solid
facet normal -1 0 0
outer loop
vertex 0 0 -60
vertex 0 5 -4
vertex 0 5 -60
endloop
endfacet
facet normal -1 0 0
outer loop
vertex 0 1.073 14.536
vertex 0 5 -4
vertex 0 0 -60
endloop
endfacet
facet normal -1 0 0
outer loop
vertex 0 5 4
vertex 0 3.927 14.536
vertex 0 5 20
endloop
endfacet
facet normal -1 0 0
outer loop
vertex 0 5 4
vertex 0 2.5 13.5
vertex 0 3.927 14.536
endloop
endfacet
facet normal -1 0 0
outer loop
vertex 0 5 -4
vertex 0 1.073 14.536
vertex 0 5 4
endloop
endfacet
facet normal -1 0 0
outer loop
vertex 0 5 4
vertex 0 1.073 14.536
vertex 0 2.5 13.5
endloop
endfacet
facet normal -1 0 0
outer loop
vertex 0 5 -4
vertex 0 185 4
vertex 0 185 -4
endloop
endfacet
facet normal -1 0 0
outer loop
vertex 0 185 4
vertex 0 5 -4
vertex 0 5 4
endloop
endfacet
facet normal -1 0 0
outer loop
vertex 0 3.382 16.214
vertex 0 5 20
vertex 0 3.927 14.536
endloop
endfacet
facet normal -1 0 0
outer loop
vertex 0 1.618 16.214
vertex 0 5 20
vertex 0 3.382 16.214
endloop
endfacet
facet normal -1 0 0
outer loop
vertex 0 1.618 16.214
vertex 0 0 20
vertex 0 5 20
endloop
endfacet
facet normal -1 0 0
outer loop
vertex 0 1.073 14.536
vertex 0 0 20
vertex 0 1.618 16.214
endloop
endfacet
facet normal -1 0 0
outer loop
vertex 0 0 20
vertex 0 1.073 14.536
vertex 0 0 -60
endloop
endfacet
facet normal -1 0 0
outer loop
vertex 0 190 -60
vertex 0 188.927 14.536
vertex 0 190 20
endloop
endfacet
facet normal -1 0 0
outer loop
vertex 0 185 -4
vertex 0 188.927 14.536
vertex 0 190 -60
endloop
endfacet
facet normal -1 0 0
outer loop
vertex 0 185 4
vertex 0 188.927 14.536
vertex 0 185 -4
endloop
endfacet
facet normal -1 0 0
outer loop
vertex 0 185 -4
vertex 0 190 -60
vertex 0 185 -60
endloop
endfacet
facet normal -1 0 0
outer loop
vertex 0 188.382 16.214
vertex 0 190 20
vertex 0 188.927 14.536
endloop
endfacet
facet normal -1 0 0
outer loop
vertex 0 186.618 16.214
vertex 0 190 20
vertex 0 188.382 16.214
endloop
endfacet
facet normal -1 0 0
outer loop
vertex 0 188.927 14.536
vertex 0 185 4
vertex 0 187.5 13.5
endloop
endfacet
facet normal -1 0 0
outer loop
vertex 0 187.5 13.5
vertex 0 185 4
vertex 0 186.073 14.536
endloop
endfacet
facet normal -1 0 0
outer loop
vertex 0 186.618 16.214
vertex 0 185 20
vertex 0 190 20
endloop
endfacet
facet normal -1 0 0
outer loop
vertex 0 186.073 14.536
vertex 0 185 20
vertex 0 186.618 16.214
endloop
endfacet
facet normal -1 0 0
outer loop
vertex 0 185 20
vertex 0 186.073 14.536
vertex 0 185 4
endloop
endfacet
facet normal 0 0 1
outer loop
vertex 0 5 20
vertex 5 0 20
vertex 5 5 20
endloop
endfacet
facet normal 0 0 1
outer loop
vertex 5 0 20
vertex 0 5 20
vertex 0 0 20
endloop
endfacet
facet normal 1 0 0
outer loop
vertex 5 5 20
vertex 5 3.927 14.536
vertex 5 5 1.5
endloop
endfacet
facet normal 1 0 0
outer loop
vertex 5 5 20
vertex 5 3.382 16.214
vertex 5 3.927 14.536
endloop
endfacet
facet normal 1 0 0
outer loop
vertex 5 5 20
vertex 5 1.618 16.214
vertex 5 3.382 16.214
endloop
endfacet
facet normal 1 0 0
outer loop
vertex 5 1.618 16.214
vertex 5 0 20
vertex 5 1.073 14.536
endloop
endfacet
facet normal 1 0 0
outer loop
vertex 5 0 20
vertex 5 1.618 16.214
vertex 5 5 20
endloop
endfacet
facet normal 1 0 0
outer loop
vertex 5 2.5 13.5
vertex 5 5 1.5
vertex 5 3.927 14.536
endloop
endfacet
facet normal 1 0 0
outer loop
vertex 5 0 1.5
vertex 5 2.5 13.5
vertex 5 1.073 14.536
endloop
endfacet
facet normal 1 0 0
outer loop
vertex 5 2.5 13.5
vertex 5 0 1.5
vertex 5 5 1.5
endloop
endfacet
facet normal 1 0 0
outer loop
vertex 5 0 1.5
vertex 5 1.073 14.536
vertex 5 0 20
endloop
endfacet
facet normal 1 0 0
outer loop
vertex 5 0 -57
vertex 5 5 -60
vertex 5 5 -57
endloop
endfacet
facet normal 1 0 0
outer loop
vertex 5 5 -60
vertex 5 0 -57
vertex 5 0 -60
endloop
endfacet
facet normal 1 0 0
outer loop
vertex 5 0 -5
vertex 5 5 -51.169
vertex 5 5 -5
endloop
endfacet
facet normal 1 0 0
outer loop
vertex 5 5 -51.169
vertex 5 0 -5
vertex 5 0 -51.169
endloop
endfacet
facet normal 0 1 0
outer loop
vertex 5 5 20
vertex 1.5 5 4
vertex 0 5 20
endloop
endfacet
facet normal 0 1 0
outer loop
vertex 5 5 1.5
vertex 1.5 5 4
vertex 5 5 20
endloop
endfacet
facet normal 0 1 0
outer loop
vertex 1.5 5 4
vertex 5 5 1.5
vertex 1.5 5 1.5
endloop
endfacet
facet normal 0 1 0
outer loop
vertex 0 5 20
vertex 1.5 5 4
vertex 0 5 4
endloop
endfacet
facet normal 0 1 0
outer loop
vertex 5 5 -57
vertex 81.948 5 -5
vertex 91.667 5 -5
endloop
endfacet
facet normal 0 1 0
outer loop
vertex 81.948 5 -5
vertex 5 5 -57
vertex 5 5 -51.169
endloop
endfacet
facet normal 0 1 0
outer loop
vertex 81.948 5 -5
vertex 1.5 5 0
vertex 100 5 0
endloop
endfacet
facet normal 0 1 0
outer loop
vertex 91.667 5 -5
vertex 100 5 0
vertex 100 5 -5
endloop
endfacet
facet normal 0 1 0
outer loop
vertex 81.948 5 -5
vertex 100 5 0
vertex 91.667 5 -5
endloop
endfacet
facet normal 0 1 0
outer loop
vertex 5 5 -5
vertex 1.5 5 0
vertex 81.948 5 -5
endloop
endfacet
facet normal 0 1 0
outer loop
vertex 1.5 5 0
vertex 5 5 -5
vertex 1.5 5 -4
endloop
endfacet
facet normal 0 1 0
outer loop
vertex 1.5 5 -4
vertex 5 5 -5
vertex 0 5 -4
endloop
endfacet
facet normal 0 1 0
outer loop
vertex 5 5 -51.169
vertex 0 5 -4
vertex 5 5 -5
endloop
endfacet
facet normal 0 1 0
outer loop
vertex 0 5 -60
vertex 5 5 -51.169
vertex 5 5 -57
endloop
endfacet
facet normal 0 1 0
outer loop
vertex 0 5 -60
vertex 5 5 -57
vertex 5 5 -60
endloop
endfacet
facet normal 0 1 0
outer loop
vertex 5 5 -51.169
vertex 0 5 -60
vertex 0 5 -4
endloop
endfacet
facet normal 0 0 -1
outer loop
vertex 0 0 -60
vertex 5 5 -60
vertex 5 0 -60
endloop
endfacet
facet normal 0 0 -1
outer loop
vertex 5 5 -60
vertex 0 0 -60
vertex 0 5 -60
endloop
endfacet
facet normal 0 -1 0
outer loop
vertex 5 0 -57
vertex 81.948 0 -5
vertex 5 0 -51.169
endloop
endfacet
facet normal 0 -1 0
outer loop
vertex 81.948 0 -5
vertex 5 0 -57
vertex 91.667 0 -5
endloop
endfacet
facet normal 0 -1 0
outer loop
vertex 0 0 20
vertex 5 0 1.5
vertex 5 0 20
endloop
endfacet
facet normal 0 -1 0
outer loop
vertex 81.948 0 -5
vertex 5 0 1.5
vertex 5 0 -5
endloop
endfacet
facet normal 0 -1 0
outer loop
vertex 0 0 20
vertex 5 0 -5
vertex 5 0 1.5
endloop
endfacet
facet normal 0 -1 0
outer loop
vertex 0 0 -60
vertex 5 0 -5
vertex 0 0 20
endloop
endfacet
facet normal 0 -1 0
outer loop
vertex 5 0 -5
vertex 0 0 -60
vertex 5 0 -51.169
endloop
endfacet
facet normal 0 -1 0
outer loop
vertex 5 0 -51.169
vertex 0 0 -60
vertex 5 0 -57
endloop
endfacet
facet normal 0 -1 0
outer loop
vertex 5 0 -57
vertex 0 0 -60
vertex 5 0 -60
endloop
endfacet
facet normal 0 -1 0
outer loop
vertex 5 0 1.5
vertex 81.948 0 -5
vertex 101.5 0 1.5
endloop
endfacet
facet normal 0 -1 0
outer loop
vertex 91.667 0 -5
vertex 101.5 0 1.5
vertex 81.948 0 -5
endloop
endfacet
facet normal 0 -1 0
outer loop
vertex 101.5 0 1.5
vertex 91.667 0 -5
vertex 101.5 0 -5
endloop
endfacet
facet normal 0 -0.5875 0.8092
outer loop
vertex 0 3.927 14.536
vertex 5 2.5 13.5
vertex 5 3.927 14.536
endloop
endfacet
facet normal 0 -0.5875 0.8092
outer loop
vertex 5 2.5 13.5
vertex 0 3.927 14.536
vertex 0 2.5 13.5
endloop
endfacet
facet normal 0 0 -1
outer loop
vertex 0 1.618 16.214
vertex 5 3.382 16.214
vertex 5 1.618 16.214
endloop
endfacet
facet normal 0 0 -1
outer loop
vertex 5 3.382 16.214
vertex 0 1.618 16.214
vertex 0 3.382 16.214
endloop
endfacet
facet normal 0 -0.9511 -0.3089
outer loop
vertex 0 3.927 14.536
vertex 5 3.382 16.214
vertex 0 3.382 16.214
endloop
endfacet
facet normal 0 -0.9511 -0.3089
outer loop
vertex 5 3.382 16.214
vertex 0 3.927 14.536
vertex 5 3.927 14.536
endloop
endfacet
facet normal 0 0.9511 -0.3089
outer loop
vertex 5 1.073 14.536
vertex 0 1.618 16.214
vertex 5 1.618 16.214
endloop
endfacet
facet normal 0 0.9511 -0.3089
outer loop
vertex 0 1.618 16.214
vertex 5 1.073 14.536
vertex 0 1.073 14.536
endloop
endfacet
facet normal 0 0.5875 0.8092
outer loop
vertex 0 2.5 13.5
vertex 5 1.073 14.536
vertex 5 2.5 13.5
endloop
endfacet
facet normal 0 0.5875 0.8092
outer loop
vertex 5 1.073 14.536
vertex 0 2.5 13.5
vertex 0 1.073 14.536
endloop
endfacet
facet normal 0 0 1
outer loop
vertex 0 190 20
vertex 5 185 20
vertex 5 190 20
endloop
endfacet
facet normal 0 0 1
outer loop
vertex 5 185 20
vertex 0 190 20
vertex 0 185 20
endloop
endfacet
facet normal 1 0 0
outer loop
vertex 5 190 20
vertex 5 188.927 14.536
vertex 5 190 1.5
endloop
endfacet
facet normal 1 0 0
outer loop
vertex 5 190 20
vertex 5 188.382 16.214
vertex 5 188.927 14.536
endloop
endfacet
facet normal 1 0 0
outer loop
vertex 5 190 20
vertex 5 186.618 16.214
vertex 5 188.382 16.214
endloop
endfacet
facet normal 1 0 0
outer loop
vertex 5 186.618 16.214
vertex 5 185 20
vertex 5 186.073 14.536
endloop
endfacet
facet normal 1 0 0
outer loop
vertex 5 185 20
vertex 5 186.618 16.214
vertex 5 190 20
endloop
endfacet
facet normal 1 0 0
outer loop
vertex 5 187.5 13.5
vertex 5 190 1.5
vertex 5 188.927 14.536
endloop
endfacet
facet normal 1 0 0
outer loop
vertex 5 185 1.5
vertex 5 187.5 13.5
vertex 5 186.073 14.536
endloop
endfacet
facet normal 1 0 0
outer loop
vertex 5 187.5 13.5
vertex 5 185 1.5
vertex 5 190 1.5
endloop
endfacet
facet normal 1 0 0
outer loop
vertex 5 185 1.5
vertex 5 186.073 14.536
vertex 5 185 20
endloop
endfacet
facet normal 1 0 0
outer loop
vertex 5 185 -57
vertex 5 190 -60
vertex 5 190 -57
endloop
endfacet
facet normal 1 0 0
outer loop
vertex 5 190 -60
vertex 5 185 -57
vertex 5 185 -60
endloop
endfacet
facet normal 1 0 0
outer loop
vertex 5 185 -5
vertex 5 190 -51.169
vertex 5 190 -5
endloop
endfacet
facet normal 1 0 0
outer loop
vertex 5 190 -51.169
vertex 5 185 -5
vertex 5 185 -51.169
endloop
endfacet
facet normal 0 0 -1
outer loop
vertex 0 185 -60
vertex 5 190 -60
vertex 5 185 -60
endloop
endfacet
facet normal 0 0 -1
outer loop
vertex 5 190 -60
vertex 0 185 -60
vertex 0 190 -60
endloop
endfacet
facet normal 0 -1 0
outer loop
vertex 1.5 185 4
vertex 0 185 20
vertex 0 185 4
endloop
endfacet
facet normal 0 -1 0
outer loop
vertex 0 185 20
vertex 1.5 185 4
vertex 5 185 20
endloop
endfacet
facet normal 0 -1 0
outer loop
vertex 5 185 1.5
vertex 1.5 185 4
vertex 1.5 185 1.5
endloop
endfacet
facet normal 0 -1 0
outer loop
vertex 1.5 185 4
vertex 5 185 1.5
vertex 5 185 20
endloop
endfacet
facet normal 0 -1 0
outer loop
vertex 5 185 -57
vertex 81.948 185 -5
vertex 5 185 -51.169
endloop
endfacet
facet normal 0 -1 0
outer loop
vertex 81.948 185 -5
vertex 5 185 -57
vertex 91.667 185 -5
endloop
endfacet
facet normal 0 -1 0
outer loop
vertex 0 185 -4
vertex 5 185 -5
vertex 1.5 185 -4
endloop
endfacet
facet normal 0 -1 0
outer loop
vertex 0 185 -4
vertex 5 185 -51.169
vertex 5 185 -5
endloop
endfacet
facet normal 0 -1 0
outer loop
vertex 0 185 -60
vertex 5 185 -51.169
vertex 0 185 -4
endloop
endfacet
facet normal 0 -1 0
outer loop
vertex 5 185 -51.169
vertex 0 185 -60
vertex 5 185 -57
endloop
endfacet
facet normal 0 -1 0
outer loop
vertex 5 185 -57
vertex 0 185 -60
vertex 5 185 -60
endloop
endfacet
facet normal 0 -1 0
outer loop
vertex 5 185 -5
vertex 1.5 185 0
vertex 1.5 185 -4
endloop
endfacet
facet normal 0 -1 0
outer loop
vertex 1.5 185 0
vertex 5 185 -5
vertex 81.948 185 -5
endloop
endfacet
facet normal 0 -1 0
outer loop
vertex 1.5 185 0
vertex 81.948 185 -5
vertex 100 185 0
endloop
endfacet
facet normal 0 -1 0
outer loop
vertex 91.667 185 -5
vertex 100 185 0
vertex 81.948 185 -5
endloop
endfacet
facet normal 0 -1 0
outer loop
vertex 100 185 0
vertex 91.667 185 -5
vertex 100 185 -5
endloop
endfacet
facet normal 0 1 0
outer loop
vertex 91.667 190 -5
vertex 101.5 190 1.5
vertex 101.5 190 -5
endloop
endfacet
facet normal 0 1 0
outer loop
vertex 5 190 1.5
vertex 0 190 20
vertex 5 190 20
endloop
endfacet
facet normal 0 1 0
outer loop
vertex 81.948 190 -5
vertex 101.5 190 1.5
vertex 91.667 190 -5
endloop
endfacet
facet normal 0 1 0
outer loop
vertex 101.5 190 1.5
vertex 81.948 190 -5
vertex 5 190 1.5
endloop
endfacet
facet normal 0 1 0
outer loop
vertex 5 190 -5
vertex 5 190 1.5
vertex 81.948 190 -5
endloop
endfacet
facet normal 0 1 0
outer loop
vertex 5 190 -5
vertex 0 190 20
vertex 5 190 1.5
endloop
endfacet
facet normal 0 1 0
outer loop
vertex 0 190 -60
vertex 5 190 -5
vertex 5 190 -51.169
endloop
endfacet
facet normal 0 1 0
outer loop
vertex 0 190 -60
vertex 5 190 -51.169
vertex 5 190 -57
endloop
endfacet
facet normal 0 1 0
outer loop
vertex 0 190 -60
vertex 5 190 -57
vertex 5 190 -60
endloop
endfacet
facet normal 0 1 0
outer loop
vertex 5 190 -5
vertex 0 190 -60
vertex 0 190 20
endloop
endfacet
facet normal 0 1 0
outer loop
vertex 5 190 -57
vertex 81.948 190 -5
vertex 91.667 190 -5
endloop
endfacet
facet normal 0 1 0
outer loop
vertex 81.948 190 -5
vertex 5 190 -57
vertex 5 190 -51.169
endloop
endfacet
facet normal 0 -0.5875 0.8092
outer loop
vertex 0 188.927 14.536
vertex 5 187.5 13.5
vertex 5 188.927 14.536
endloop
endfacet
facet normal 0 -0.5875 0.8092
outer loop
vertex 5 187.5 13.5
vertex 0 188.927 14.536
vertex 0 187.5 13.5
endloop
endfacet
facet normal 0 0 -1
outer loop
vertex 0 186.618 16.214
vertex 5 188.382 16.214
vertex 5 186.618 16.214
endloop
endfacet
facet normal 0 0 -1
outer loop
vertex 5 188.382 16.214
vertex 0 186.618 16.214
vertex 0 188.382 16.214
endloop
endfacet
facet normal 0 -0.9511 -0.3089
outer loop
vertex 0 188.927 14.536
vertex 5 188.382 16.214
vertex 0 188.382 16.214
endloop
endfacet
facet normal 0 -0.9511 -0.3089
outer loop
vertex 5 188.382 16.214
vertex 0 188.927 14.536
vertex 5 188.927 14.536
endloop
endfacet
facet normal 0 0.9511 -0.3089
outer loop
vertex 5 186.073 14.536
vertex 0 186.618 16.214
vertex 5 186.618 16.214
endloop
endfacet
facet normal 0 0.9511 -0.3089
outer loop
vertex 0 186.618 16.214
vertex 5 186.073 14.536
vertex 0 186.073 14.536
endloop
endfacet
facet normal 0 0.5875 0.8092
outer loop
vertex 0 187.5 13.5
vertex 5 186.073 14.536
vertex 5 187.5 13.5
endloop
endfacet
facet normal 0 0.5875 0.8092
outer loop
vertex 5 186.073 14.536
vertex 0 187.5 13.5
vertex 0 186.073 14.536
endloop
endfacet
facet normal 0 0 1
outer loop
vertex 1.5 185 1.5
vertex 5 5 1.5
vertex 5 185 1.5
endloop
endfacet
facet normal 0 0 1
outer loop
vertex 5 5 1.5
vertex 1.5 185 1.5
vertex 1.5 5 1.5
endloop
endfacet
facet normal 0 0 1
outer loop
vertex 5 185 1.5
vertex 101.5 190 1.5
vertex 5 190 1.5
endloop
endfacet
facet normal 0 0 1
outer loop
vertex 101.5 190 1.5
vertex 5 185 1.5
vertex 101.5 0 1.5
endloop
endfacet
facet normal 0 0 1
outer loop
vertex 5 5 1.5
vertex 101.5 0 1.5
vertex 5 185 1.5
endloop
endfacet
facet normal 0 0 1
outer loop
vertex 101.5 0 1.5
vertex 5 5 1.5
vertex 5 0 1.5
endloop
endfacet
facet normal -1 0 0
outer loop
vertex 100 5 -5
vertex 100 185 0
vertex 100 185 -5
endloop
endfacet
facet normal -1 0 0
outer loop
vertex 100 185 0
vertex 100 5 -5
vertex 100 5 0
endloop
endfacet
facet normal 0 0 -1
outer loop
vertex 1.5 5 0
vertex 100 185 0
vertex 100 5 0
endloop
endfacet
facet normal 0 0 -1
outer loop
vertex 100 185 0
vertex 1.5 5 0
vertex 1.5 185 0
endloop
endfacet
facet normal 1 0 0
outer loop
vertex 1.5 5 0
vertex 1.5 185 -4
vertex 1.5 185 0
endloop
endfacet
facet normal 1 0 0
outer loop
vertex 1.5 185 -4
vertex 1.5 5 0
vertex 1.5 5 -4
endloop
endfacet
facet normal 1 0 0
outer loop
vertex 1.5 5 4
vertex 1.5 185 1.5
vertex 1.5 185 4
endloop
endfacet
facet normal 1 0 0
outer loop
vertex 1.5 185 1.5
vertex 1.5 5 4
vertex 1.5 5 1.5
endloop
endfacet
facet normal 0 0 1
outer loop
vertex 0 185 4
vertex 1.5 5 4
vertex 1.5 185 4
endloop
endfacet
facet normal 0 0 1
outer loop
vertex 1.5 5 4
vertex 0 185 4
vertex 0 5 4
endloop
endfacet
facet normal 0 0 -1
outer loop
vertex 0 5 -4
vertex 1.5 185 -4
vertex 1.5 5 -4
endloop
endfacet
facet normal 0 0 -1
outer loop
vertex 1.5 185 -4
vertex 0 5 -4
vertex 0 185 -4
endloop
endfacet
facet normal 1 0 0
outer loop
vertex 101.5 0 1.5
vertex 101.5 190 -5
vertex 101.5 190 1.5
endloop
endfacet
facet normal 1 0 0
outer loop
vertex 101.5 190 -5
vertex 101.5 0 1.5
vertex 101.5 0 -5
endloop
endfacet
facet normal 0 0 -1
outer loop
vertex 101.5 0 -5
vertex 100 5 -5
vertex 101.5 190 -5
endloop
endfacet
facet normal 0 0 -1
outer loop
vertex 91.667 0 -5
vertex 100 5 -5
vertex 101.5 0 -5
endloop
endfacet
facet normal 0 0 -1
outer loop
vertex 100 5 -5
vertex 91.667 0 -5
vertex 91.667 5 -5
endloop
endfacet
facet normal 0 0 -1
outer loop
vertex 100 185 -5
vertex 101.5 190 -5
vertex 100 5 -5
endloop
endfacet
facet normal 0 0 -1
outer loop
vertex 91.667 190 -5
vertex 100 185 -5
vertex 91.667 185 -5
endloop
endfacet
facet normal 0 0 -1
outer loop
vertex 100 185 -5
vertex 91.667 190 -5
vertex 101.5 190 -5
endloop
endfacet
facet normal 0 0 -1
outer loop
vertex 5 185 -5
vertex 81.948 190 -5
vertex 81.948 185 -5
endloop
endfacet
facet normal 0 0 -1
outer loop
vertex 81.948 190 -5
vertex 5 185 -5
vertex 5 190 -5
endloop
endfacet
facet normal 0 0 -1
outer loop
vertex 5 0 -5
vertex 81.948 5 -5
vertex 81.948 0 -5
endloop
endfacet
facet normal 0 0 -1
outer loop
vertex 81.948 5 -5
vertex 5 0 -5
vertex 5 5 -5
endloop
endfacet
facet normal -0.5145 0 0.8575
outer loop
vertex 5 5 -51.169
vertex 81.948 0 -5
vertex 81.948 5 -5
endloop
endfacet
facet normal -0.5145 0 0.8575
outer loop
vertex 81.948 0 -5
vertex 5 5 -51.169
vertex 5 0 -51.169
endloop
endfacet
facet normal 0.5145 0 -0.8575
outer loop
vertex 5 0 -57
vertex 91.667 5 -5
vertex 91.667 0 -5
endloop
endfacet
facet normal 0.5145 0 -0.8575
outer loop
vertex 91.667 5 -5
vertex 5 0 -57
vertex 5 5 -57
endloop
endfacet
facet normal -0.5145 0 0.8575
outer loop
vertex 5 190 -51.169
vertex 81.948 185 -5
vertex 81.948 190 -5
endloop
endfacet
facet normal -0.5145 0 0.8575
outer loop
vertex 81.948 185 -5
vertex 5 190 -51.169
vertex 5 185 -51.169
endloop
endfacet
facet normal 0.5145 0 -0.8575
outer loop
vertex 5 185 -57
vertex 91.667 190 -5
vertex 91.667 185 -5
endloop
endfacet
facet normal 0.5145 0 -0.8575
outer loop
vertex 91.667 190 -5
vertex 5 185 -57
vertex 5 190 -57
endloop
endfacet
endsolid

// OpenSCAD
ShelfLength = 190;
ShelfWidth = 100;
ShelfHeight = 8;
WallThickness = 1.5;

ColumnSize = 5;
ColumnHeight = 80;
ColumnOffset = 20;
ColumnHoleRadius = 1.5;

cube([ShelfWidth, ShelfLength, WallThickness], center=false);

translate([0, 0, ShelfHeight/2]) {
    rotate([0, 90, 0]) {
        cube([ShelfHeight, ShelfLength, WallThickness], center=false);
    }
}

translate([ShelfWidth, 0, 0-ColumnSize]) {
    cube([WallThickness, ShelfLength, ColumnSize + WallThickness], center=false);
}

translate([5, 0, -(ColumnHeight-ColumnOffset) + 3]) {
    rotate([0, -atan((ColumnHeight-ColumnOffset)/ShelfWidth),0]) {
        cube([sqrt(ShelfWidth*ShelfWidth + (ColumnHeight-ColumnOffset)*(ColumnHeight-ColumnOffset)) - 15, ColumnSize, ColumnSize], center=false);
    }
}

translate([5, ShelfLength-ColumnSize, -(ColumnHeight-ColumnOffset) + 3]) {
    rotate([0, -atan((ColumnHeight-ColumnOffset)/ShelfWidth),0]) {
        cube([sqrt(ShelfWidth*ShelfWidth + (ColumnHeight-ColumnOffset)*(ColumnHeight-ColumnOffset)) - 15, ColumnSize, ColumnSize], center=false);
    }
}

translate([0, 0, -ColumnSize]) {
    cube([ShelfWidth, ColumnSize, ColumnSize], center=false);
}

translate([0, ShelfLength-ColumnSize, -ColumnSize]) {
    cube([ShelfWidth, ColumnSize, ColumnSize], center=false);
}

difference () {
    translate([0, 0, -ColumnHeight/2 - ColumnOffset]) {
        cube([ColumnSize, ColumnSize, ColumnHeight], center=false);
    }
    
    translate([0, ColumnSize/2, ColumnOffset - ColumnSize]) {
        rotate([0, 90, 0]) {
            cylinder(h = ColumnSize, r = ColumnHoleRadius, center = false);
        }
    }
}

difference () {
    translate([0, ShelfLength - ColumnSize, -ColumnHeight/2 - ColumnOffset]) {
        cube([ColumnSize, ColumnSize, ColumnHeight], center=false);
    }

    translate([0, ShelfLength - ColumnSize/2, ColumnOffset - ColumnSize]) {
        rotate([0, 90, 0]) {
            cylinder(h = ColumnSize, r = ColumnHoleRadius, center = false);
        }
    }
}


/*
translate([PSUWidth-0.2, 8, 18]) {
    rotate([90, 0, 90]) {
        linear_extrude(height = 1/2){
            text("110-220V Input", size=3, font="Arial Black");
        }
    }
}

translate([PSUWidth-0.2, 5, 8]) {
    rotate([90, 0, 90]) {
        linear_extrude(height = 1/2){
            text("4V 1.25A Output", size=3, font="Arial Black");
        }
    }
}
*/
